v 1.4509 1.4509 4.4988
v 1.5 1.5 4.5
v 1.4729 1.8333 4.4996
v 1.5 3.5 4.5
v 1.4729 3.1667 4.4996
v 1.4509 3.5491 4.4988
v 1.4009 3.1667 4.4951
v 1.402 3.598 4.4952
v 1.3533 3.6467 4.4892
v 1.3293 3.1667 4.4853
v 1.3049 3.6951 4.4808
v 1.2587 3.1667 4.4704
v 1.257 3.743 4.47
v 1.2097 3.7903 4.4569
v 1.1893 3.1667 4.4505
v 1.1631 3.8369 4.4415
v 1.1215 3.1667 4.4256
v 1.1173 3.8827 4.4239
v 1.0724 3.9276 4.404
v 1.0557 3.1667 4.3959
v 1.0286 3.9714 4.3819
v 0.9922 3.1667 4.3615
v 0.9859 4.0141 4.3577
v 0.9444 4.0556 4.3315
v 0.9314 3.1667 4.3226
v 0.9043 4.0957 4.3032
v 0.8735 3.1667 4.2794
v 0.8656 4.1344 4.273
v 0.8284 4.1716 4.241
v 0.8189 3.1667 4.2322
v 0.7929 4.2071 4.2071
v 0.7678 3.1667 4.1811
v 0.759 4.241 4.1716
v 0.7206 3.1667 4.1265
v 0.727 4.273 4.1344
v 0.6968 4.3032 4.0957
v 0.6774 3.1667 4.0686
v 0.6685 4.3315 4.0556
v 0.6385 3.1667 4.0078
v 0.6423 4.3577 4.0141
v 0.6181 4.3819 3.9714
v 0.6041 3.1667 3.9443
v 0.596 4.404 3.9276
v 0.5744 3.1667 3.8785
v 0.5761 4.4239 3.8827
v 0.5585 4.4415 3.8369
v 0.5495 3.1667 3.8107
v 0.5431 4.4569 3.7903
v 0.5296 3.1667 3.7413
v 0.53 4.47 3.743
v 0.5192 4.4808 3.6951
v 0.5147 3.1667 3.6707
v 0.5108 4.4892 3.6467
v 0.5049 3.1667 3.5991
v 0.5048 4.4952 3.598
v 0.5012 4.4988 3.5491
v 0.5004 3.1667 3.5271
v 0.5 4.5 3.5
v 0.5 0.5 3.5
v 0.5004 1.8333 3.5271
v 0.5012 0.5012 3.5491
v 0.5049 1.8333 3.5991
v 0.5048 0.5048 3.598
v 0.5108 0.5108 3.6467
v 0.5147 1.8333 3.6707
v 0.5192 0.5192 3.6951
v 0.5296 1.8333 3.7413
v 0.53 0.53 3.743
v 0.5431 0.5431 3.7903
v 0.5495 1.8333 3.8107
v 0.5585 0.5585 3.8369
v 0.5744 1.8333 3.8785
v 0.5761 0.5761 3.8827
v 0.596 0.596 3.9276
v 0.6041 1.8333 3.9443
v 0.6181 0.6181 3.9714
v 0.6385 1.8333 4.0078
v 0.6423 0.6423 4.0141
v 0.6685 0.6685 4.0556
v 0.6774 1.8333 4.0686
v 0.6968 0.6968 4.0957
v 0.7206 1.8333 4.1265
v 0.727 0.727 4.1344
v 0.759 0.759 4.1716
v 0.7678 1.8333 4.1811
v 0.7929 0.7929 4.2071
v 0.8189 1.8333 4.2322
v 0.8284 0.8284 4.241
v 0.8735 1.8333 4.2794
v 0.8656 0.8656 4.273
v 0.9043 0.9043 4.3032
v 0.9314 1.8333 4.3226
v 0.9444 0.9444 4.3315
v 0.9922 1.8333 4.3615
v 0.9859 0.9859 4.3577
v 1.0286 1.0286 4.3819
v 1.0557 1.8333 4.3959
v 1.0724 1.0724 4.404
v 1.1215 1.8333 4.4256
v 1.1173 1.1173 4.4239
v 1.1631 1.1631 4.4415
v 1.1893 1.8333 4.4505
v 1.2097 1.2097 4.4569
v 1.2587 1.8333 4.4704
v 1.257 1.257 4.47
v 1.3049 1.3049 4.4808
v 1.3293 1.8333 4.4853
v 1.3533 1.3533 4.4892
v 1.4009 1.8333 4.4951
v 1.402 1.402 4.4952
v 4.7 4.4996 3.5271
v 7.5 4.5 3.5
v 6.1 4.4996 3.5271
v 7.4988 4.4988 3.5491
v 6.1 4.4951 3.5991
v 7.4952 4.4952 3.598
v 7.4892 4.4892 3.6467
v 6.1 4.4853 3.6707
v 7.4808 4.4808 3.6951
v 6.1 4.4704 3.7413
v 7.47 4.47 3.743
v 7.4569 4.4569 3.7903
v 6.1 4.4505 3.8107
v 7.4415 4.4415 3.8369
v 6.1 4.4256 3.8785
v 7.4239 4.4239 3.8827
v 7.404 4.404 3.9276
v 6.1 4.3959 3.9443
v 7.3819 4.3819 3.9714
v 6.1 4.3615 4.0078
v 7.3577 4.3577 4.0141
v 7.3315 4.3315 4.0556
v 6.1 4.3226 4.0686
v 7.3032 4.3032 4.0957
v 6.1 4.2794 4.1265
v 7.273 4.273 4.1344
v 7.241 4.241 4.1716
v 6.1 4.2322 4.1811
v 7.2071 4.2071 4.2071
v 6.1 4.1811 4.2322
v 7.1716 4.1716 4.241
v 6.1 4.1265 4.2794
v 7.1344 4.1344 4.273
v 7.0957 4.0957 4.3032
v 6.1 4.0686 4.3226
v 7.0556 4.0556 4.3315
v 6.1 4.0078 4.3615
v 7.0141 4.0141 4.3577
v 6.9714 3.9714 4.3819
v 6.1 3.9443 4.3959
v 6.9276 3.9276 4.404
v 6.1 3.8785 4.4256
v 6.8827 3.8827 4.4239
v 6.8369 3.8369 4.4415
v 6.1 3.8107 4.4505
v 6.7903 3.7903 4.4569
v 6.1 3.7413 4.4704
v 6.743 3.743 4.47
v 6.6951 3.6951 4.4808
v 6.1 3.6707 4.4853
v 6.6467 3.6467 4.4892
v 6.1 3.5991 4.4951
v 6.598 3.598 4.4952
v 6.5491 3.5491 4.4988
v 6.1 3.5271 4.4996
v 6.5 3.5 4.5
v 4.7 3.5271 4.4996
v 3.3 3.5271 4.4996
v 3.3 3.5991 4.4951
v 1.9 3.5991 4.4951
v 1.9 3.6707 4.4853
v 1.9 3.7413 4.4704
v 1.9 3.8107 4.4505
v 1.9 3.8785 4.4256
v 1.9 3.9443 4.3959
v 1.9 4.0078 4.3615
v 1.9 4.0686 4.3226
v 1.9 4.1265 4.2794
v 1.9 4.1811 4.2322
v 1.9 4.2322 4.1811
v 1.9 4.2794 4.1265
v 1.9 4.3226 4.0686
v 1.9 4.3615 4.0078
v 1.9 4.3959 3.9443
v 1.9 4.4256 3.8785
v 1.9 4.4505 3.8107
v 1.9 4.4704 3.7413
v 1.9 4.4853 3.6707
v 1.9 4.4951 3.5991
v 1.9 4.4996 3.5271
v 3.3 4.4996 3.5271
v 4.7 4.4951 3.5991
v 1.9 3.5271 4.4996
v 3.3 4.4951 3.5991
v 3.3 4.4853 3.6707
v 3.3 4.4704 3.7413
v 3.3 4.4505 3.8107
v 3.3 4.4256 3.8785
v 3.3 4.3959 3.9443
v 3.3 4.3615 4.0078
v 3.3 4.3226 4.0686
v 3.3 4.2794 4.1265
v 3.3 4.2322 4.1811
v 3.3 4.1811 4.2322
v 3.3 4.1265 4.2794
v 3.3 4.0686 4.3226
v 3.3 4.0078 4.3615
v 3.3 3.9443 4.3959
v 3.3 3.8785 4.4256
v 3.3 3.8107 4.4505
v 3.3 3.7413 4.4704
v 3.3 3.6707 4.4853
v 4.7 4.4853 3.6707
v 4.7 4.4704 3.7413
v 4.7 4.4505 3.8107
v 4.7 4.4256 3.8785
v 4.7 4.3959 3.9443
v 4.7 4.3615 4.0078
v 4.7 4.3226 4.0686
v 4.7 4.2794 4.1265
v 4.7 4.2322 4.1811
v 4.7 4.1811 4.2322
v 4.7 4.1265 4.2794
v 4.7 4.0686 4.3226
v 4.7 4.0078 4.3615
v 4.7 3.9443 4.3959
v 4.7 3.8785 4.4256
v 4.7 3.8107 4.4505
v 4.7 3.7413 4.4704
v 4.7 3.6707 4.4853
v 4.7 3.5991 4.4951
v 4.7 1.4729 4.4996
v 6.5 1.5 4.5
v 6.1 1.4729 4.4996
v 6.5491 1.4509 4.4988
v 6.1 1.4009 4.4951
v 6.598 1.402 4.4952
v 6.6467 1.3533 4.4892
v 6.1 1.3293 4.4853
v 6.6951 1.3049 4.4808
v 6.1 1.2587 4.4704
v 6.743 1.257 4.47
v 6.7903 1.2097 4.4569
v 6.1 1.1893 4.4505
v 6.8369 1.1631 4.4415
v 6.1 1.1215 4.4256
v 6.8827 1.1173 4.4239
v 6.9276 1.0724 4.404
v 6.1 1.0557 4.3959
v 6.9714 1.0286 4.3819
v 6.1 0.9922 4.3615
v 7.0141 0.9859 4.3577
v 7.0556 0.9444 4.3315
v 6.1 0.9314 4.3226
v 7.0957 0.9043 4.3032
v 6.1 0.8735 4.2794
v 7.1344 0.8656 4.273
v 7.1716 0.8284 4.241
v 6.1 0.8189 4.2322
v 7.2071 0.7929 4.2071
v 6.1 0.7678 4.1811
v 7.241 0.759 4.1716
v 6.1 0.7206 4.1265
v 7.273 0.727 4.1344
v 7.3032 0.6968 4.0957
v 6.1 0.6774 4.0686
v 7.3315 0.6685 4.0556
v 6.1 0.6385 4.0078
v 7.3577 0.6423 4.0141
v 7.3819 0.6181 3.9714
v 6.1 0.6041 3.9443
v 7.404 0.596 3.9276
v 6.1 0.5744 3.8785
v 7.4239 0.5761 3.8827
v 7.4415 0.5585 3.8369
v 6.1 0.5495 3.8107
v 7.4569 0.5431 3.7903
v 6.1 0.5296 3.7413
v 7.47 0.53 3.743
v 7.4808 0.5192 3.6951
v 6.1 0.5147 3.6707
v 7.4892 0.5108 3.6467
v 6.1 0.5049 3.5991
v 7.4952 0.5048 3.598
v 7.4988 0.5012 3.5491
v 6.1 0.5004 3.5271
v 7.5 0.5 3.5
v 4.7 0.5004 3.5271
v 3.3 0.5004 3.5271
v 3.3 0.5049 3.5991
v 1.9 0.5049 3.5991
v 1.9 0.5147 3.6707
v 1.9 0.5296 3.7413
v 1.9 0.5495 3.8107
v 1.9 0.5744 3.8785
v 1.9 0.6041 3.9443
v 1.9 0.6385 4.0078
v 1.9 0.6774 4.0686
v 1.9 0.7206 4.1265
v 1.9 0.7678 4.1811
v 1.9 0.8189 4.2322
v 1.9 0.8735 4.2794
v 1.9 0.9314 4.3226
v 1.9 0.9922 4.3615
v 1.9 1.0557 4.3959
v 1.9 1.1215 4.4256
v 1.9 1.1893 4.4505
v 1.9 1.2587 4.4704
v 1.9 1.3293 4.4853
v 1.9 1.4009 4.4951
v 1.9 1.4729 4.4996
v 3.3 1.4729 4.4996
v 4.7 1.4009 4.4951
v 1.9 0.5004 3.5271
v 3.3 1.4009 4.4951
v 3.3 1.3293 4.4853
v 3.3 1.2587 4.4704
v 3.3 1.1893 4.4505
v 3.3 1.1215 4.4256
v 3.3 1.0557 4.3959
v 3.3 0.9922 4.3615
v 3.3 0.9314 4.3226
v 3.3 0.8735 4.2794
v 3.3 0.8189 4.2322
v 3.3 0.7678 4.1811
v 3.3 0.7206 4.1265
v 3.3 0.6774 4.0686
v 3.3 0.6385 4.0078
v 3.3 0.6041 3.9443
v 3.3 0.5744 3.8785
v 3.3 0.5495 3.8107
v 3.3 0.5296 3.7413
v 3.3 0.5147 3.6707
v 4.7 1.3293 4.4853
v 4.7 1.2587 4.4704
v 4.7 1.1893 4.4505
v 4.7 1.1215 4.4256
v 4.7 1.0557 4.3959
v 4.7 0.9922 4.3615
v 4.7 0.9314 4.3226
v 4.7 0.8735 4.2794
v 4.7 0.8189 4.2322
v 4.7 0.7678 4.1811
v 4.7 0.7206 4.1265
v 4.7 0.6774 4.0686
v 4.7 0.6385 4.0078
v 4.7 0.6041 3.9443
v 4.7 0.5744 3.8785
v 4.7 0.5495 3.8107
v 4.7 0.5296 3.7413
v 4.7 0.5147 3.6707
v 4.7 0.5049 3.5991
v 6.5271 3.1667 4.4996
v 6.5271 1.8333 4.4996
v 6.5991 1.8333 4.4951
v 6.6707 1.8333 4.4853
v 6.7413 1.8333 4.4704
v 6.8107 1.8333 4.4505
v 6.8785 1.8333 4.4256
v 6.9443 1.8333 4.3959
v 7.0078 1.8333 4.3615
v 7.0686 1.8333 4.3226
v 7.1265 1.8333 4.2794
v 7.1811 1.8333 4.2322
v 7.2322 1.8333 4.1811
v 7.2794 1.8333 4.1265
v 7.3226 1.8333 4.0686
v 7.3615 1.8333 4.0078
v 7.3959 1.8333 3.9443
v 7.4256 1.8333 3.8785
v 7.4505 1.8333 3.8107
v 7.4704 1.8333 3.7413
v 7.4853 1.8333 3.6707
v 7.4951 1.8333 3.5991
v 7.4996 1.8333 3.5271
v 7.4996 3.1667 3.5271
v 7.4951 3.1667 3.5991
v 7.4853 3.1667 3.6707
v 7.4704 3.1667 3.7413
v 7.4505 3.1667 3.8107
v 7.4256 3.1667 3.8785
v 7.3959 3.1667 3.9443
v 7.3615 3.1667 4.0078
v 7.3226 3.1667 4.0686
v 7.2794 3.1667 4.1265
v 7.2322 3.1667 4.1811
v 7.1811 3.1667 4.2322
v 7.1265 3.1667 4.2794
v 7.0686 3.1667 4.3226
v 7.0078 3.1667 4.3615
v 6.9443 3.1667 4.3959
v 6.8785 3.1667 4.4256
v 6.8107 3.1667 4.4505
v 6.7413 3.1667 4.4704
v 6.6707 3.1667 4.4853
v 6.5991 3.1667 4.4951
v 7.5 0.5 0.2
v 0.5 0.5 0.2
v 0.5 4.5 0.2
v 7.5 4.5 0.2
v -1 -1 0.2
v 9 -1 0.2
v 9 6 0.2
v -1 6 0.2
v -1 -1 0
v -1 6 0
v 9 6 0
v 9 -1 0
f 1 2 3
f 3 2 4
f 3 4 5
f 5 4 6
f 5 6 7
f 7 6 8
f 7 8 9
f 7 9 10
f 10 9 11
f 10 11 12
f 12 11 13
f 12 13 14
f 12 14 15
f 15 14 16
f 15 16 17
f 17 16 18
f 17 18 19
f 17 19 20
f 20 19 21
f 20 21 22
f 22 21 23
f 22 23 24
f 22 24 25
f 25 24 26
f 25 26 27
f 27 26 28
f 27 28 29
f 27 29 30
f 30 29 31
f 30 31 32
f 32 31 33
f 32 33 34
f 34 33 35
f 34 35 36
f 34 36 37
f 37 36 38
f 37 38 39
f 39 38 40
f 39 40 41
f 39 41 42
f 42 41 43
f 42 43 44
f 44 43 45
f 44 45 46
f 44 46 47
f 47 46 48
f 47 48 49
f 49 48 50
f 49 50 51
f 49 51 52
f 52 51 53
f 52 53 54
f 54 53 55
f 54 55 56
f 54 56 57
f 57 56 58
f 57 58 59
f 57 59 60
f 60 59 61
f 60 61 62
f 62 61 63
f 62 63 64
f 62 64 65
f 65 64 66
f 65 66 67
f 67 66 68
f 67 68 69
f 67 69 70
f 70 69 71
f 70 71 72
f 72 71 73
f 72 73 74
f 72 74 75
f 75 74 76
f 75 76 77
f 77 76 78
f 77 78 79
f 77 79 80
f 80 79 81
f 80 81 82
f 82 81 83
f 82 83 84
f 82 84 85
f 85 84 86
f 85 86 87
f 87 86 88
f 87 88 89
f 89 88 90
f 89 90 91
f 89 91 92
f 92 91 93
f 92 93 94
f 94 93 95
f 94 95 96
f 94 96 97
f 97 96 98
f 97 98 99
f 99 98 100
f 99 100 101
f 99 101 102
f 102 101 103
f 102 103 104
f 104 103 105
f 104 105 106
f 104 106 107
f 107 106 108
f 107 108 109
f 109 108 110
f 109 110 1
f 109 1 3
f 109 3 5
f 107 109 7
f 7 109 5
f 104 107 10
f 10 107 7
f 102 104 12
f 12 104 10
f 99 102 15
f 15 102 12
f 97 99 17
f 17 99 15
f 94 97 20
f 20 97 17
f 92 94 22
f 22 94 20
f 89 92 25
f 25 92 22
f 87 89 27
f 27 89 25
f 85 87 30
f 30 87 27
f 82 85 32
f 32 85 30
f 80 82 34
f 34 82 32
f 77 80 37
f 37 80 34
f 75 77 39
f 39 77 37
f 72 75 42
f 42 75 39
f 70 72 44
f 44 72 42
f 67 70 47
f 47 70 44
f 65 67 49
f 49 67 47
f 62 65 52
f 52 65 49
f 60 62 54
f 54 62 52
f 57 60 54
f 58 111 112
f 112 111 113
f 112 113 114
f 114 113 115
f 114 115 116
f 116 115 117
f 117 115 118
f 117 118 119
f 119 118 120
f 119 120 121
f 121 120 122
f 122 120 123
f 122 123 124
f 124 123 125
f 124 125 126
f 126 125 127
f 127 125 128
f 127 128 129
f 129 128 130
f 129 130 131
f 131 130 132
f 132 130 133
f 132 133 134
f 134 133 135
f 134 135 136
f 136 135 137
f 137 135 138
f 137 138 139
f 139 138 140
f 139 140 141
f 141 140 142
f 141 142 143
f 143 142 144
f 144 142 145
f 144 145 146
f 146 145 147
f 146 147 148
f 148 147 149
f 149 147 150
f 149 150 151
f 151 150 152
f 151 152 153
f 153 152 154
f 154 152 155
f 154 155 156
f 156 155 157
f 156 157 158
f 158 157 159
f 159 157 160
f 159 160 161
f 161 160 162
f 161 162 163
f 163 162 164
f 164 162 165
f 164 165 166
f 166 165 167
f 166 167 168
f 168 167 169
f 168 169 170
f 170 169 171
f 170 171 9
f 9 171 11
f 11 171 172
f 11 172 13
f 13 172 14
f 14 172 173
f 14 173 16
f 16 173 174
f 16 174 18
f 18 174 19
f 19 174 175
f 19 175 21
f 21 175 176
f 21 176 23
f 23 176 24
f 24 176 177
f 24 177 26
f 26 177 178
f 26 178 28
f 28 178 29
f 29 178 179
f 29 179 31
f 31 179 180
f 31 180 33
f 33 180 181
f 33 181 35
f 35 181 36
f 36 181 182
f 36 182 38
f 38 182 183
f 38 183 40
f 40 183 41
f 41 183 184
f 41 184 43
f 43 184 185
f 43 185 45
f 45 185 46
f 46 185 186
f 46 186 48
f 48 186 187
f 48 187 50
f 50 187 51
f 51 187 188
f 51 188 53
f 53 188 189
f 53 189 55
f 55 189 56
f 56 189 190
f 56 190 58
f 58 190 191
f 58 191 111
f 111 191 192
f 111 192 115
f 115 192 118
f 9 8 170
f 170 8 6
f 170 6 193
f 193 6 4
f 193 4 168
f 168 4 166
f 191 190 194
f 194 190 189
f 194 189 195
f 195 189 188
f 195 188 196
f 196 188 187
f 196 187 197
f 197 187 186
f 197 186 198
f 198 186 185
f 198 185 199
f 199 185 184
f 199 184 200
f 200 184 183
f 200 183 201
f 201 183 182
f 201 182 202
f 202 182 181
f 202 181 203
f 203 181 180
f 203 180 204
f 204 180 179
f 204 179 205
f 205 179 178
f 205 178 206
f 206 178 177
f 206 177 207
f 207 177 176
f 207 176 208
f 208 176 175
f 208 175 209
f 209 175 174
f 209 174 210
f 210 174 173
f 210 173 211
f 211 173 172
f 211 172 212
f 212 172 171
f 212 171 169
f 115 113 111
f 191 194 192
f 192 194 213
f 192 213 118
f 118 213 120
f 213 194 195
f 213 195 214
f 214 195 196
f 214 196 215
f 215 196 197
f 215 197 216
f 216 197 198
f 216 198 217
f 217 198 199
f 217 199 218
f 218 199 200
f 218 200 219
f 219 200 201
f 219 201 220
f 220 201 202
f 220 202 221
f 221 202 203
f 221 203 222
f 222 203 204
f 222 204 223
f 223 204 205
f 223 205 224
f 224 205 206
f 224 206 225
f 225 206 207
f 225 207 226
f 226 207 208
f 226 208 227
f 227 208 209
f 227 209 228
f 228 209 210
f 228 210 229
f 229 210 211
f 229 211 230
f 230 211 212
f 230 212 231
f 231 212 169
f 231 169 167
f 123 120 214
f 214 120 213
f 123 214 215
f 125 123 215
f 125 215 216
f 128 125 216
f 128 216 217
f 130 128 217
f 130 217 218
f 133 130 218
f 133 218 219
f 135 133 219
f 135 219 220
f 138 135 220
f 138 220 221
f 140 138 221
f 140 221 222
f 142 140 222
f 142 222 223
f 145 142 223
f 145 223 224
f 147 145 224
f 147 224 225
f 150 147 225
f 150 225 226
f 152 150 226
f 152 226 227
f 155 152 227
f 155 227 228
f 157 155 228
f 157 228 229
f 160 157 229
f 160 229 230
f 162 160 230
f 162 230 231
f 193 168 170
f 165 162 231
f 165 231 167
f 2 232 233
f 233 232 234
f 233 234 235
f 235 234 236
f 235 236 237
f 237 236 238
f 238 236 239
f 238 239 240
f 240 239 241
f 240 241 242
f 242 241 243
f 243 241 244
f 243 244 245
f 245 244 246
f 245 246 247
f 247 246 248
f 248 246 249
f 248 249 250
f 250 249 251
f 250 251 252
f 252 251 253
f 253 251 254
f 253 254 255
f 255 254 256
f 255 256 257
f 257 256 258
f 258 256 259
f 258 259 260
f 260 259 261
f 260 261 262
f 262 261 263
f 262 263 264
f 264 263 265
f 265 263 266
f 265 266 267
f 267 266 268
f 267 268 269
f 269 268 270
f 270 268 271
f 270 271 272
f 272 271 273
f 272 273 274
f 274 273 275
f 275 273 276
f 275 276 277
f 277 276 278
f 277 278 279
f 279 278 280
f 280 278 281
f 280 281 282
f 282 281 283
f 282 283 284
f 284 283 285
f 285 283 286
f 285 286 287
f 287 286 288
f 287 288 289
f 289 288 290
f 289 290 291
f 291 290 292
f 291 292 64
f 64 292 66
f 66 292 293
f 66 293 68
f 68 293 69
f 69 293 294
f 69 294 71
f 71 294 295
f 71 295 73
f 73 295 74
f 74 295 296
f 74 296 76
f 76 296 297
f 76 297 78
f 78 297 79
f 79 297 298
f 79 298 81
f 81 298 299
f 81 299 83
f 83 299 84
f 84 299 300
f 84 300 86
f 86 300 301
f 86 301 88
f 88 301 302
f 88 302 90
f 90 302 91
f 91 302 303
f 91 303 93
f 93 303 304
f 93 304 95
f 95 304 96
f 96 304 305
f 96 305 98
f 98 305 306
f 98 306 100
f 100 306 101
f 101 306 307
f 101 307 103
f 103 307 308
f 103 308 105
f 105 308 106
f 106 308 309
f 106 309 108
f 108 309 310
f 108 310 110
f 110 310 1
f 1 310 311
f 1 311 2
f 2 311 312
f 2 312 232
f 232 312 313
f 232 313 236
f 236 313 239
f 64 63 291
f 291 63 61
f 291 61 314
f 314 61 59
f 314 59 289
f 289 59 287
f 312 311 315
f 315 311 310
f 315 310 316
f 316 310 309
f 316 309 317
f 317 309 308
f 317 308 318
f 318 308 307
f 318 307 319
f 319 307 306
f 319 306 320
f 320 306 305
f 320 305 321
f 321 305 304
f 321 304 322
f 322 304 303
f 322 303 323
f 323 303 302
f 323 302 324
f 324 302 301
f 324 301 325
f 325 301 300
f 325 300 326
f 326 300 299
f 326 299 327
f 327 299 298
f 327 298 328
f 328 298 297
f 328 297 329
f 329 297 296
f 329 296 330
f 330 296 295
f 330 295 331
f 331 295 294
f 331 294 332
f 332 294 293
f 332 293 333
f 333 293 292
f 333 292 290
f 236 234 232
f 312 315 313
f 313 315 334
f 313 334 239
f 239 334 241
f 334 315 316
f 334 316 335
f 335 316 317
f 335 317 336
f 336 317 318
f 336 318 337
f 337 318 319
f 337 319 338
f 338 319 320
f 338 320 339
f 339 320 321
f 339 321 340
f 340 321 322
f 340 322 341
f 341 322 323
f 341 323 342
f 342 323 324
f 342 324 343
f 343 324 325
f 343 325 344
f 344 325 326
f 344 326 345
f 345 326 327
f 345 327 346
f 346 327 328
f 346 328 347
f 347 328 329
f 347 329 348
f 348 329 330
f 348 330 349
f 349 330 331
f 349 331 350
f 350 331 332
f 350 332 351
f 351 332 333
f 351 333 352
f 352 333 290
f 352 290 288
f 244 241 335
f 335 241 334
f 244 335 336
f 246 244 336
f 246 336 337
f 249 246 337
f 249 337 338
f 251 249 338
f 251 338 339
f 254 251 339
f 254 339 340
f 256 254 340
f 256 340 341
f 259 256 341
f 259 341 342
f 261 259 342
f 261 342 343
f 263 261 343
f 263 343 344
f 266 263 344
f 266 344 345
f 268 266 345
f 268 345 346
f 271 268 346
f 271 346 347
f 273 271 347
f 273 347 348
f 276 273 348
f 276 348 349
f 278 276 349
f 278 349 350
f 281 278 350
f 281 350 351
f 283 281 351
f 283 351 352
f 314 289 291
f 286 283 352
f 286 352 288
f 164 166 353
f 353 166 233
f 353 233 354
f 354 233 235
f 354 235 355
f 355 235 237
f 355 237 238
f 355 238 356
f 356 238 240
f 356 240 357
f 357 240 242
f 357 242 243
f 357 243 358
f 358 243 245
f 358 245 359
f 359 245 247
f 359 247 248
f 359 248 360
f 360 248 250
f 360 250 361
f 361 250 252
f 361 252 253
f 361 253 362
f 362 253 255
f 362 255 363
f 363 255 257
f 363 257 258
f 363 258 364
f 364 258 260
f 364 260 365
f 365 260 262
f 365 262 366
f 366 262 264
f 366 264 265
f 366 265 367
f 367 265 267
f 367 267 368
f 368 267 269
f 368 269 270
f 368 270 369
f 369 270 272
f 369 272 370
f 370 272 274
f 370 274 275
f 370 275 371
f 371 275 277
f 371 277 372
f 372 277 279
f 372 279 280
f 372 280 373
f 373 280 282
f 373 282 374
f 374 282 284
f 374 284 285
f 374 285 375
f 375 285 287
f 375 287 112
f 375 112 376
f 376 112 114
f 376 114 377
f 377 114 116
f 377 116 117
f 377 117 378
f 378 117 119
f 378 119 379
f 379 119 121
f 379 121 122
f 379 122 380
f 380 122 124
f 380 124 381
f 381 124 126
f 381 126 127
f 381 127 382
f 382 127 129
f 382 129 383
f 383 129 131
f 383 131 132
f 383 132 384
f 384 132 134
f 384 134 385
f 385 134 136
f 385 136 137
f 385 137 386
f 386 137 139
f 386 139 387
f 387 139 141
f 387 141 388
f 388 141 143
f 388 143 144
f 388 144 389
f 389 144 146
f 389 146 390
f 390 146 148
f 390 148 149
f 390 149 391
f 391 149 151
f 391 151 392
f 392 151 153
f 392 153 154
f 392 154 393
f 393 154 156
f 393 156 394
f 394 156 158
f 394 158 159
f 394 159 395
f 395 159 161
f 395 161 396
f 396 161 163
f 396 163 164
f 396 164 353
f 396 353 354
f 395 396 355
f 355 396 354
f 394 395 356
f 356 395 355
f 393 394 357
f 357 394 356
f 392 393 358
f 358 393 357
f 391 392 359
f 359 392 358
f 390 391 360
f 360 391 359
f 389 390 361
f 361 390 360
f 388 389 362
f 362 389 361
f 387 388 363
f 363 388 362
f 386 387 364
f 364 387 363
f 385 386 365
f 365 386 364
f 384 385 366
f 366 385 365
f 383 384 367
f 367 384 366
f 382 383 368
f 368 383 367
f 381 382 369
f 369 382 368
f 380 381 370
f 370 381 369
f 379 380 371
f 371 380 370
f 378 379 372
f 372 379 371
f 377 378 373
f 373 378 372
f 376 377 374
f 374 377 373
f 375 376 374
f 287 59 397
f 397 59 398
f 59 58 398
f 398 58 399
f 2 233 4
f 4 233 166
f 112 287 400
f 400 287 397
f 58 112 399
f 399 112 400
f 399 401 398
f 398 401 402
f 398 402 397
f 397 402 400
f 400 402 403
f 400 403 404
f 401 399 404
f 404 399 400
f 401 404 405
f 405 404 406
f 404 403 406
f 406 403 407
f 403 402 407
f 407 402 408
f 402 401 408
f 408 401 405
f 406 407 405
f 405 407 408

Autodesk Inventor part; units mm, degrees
ref_plane "YZ Plane" through (0, 0, 0) normal (1, 0, 0) x (0, 1, 0)
ref_plane "XZ Plane" through (0, 0, 0) normal (0, 1, 0) x (-1, 0, 0)
ref_plane "XY Plane" through (0, 0, 0) normal (0, 0, 1) x (1, 0, 0)
sketch "Sketch1" plane through (0, 0, 0) normal (0, 0, 1) x (1, 0, 0)
  line L0 (-1, 6) -> (9, 6)
  line L1 (9, 6) -> (9, -1)
  line L2 (9, -1) -> (-1, -1)
  line L3 (-1, -1) -> (-1, 6)
  line L4 (0.5, 4.5) -> (7.5, 4.5)
  line L5 (7.5, 4.5) -> (7.5, 0.5)
  line L6 (7.5, 0.5) -> (0.5, 0.5)
  line L7 (0.5, 0.5) -> (0.5, 4.5)
  point P0 (0, 0)
extrude "Extrusion1" add sketch "Sketch1" along normal blind 4.5 contours L0 L1 L2 L3 | L4 L5 L6 L7
sketch "Sketch2" plane through (0, 0, 4.5) normal (0, 0, 1) x (1, 0, 0)
  line L0 (-1, 6) -> (9, 6)
  line L1 (9, 6) -> (9, -1)
  line L2 (9, -1) -> (-1, -1)
  line L3 (-1, -1) -> (-1, 6)
  line L4 (0.5, 4.5) -> (7.5, 4.5)
  line L5 (7.5, 4.5) -> (7.5, 0.5)
  line L6 (7.5, 0.5) -> (0.5, 0.5)
  line L7 (0.5, 0.5) -> (0.5, 4.5)
  point P0 (0, 0)
  point P1 (0, 0)
extrude "Extrusion2" cut sketch "Sketch2" against normal blind 4.3
fillet "Fillet1" radius 1 4 edges at (0.5, 2.5, 4.5) (4, 0.5, 4.5) (7.5, 2.5, 4.5) (4, 4.5, 4.5)
properties part number "powerbutton"
